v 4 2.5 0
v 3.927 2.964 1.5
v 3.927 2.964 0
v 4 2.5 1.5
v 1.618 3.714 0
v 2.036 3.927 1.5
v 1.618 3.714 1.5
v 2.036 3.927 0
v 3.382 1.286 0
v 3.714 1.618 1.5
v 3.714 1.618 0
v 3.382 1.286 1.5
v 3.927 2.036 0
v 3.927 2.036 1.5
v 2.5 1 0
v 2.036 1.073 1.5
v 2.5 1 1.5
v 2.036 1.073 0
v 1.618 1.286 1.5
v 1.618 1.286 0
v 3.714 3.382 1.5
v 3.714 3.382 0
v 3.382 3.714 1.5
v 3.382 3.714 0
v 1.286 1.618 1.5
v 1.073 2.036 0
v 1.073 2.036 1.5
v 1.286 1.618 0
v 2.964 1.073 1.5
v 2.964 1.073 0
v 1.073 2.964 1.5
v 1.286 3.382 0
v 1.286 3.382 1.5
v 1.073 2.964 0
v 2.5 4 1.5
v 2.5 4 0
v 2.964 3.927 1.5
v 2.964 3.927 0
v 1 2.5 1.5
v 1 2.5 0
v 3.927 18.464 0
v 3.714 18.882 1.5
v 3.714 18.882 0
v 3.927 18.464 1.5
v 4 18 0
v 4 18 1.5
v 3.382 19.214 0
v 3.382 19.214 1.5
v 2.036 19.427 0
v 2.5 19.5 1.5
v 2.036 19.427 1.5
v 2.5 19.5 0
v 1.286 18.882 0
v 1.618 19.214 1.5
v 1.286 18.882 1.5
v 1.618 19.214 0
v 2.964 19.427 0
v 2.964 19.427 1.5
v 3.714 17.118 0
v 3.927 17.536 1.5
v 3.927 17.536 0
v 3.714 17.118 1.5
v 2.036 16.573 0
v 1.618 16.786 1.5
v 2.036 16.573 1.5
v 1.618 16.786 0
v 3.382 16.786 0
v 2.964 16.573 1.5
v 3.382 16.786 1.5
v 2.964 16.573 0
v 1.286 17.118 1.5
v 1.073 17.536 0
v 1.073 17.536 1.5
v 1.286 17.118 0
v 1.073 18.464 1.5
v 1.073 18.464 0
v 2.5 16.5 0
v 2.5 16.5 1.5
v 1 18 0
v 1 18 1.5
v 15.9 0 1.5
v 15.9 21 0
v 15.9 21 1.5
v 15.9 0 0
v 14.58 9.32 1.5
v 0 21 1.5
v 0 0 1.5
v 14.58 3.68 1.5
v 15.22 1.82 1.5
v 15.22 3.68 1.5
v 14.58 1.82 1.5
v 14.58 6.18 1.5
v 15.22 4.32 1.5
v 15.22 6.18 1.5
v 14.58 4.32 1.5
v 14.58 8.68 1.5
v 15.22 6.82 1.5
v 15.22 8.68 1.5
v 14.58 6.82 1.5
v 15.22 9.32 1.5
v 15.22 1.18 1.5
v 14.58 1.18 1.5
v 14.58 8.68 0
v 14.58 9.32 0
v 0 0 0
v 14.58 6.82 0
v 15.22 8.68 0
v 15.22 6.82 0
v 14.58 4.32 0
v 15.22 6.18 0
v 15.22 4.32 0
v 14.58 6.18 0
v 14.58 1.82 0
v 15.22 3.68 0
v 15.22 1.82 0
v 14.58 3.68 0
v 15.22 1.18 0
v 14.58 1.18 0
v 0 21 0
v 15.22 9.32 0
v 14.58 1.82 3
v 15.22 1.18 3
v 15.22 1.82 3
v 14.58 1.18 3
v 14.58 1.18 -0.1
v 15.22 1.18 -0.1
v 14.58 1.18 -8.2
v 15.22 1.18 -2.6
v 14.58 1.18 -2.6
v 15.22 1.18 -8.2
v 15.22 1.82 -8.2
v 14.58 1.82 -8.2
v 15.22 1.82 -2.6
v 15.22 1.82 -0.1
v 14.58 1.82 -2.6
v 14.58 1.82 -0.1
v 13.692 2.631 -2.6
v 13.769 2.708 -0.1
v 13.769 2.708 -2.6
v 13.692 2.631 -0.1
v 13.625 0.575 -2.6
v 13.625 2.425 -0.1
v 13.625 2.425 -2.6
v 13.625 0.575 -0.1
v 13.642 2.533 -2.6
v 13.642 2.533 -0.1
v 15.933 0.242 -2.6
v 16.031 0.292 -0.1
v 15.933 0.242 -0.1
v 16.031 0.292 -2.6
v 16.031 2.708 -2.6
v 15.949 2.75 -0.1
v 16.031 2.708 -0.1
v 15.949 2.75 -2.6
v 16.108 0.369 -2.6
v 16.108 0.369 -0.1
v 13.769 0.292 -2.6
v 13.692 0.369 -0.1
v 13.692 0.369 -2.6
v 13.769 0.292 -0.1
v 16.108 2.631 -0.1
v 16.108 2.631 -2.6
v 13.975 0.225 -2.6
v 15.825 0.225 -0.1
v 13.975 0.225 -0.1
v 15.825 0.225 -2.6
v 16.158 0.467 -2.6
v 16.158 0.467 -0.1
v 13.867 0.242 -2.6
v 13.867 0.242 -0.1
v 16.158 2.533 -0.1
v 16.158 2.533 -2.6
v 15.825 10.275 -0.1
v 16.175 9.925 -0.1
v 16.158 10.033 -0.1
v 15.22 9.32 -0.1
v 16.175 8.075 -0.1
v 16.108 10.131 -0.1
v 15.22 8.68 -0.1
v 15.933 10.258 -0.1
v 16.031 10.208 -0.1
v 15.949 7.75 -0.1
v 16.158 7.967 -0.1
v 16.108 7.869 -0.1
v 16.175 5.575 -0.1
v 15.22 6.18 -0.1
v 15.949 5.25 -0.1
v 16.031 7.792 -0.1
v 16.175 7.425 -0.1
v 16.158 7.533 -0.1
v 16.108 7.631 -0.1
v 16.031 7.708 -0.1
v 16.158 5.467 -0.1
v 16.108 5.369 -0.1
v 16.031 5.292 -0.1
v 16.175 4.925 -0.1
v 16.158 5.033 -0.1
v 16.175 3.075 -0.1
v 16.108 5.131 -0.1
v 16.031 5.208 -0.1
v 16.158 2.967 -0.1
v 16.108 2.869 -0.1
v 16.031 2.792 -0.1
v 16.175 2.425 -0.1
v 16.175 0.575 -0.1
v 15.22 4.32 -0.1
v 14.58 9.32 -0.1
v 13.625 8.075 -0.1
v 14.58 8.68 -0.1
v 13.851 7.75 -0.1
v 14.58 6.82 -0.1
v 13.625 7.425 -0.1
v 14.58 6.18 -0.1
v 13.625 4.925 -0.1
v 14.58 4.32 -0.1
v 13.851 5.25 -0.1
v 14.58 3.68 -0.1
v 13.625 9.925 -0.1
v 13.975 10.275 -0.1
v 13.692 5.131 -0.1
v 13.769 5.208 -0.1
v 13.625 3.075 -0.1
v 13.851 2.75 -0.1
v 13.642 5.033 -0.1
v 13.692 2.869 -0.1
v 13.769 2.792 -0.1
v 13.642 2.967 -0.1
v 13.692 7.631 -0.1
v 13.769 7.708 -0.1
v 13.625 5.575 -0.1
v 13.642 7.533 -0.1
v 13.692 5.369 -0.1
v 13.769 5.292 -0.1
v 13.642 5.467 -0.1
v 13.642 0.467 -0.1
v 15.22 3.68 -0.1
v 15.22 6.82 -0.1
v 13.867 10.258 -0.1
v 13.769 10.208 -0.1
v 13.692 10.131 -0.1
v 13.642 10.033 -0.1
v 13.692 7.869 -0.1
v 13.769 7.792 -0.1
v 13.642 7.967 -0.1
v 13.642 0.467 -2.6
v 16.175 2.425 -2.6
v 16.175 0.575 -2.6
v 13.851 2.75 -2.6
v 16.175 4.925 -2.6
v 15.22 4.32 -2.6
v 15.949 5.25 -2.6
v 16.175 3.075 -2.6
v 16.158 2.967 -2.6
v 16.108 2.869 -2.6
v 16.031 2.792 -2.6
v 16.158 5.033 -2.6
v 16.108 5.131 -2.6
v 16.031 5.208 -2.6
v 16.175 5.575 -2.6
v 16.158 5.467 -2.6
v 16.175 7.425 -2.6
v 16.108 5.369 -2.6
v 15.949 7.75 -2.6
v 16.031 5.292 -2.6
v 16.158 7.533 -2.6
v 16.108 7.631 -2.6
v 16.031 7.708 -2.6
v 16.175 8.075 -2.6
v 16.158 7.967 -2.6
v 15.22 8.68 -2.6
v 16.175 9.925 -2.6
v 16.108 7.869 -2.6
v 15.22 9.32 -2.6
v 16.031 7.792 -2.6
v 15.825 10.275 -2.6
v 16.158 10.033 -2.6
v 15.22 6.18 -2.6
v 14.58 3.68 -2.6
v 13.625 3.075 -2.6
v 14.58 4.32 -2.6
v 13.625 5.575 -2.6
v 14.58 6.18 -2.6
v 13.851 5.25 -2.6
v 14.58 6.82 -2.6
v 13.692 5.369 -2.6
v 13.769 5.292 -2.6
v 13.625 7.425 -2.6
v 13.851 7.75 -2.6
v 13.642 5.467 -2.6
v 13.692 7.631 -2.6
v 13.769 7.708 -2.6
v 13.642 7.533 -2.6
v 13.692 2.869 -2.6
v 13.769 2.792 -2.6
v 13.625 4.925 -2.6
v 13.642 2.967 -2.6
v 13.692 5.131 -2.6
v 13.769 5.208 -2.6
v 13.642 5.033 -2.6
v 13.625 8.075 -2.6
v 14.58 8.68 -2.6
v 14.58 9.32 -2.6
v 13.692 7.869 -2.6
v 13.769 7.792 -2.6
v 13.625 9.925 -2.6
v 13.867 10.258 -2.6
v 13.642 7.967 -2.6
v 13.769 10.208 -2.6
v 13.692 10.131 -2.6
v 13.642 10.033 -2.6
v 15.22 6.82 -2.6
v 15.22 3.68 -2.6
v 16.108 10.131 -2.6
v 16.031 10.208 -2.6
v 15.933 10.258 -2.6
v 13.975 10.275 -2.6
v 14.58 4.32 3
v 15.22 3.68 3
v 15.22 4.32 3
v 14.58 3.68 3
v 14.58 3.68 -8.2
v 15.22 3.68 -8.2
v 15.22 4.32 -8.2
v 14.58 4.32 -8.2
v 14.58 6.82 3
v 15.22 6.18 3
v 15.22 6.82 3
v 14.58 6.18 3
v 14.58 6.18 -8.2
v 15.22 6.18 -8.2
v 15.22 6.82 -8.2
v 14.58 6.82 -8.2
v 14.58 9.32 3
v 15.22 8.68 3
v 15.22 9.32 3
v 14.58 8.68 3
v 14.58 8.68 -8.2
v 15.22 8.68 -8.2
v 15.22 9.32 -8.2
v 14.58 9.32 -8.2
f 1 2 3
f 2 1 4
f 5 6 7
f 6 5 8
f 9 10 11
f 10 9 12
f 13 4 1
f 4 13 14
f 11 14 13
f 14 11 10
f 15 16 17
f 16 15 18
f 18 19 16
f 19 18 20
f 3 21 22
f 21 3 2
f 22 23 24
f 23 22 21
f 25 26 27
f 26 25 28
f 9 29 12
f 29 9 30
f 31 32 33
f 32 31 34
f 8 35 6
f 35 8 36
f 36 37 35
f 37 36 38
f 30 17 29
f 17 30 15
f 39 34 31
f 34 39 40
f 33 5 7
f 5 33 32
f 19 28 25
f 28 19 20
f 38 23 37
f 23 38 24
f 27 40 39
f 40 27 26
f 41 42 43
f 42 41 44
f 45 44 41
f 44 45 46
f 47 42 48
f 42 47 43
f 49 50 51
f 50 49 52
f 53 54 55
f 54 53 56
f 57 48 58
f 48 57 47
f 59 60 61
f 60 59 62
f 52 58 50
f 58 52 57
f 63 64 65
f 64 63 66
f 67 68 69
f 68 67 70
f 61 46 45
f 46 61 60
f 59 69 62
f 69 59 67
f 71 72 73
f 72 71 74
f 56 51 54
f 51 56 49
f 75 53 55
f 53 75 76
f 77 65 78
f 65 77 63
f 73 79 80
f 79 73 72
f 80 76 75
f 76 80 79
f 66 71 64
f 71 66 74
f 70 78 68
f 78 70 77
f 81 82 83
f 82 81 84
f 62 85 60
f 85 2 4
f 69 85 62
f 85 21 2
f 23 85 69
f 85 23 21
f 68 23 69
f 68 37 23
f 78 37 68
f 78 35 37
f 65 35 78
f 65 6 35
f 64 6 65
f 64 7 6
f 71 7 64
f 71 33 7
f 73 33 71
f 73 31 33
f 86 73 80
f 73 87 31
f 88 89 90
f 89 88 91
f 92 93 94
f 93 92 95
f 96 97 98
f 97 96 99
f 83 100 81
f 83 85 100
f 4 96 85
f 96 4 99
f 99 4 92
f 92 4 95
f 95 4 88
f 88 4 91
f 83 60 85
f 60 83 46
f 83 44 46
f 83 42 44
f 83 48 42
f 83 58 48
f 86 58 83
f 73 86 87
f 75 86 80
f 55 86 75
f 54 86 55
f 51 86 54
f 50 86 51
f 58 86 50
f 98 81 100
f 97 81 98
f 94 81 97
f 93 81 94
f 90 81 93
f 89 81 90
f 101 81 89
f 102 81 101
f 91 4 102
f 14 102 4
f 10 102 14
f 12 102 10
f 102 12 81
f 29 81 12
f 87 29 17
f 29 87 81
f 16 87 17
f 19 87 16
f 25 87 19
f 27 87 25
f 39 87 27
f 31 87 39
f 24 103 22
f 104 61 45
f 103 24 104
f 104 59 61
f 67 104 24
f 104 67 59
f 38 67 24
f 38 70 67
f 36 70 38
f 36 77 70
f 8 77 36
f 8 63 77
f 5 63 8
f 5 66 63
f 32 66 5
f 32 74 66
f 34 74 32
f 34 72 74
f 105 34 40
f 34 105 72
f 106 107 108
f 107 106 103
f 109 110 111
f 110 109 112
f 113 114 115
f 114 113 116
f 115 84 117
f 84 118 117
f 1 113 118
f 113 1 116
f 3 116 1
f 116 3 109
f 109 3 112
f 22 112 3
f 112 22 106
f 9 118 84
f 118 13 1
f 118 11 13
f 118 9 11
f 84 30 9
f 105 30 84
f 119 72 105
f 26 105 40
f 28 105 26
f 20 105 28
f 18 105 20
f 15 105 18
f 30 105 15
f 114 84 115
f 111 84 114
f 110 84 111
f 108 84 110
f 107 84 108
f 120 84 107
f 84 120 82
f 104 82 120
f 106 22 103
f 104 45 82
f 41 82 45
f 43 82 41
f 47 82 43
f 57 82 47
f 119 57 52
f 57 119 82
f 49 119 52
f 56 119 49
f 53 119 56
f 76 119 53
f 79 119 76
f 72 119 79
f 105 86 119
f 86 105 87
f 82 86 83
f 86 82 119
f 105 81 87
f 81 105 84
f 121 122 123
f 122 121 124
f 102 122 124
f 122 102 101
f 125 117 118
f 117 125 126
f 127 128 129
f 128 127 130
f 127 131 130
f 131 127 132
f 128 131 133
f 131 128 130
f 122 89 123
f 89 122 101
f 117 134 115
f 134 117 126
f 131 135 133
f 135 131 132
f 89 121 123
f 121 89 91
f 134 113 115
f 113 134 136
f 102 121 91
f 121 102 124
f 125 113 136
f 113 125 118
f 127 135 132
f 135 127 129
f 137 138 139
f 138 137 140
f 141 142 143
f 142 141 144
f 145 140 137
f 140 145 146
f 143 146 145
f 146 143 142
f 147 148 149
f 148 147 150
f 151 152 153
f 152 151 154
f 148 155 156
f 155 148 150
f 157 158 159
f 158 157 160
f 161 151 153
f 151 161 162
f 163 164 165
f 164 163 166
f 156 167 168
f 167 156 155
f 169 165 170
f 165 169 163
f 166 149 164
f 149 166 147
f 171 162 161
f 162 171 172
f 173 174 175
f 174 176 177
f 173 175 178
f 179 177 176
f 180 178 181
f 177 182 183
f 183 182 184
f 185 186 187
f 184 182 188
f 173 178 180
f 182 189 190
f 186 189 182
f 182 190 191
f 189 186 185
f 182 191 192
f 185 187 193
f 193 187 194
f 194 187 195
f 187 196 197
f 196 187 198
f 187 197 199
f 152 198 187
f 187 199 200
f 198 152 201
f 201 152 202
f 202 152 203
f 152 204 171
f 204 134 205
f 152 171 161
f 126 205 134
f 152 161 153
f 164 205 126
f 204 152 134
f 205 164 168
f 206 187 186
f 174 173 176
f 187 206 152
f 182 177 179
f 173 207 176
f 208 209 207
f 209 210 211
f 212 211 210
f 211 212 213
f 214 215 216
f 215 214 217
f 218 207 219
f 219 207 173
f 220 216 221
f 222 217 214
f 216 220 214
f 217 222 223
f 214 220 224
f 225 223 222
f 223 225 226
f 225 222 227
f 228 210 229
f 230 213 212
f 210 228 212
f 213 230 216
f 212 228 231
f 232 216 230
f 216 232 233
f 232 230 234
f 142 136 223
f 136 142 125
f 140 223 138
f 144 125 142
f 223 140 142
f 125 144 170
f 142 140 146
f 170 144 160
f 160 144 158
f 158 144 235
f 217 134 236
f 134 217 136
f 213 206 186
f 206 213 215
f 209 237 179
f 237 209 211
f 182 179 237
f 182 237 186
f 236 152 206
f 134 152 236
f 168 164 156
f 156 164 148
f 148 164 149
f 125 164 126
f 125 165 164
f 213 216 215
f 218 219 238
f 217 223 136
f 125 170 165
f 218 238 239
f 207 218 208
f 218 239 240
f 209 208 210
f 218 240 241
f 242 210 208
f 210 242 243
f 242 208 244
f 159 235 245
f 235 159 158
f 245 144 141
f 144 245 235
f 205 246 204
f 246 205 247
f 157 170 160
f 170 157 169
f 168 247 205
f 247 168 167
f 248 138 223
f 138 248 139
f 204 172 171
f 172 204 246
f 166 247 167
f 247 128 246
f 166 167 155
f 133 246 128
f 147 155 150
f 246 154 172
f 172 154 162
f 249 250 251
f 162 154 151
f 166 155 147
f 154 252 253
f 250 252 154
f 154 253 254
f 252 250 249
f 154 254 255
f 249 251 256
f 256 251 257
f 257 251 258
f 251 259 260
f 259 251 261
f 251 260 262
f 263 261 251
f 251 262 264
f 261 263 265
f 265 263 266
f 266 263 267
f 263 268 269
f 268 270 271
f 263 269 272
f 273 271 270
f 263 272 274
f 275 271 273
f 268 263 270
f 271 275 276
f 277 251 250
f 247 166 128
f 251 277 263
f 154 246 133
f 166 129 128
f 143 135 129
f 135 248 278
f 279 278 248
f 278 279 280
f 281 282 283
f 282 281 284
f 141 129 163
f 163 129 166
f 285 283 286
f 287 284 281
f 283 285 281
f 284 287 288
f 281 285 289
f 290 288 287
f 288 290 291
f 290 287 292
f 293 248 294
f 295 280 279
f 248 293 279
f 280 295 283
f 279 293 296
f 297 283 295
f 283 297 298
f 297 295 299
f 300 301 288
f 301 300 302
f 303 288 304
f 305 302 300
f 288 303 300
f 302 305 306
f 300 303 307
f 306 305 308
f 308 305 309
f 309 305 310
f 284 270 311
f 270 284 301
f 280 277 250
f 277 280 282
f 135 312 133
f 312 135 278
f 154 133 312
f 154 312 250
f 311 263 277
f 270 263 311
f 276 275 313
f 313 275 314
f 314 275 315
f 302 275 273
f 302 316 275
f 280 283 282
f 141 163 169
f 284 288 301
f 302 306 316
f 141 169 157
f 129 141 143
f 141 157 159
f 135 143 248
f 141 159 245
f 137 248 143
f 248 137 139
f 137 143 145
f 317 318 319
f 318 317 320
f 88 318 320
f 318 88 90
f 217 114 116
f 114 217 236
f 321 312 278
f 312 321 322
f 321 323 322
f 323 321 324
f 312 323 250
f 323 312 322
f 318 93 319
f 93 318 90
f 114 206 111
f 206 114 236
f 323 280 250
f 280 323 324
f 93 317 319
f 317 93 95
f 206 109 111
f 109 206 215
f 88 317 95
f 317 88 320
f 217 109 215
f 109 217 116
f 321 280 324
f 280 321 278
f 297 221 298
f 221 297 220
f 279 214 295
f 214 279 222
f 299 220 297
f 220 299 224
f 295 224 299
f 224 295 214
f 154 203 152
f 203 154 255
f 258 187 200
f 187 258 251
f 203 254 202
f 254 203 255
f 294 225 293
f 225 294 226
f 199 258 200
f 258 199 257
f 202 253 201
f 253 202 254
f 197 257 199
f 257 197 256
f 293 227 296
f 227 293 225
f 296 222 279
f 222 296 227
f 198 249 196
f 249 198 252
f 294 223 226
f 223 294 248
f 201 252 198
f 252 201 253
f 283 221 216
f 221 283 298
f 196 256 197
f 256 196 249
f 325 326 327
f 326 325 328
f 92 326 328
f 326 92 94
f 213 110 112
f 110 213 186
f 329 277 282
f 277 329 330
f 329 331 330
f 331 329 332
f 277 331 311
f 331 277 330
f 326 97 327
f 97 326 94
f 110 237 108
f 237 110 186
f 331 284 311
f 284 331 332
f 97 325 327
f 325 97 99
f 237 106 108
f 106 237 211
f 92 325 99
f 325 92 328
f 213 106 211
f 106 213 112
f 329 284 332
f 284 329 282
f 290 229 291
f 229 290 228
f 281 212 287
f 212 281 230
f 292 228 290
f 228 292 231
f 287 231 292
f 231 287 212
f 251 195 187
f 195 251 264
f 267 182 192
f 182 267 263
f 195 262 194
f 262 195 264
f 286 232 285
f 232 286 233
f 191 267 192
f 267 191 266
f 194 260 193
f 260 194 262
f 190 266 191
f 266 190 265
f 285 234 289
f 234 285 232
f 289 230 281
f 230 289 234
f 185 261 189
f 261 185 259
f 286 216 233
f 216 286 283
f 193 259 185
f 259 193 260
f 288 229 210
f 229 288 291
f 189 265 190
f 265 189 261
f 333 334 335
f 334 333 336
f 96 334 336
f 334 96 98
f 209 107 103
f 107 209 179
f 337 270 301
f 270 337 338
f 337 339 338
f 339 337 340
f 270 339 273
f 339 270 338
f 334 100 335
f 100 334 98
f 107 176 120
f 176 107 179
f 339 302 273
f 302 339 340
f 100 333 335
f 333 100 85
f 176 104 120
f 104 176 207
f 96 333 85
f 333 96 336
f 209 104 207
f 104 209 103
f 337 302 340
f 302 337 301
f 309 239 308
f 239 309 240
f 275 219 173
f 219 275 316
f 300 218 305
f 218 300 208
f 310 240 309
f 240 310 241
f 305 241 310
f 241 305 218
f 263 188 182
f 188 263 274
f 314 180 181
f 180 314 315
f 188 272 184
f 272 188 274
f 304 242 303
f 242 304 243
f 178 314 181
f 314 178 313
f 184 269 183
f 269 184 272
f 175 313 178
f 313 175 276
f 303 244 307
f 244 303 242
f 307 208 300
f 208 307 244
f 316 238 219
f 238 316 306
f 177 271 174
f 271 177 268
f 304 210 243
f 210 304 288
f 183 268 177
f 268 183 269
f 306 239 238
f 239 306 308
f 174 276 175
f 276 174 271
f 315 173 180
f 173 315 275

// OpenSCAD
// file: screw_connector.scad
BOX_WD = 7.7;
BOX_HT =10;
THICKNESS = 4.7;
size_mod = 0.05; // ensure overlap
SHD_HT = 4;
SCREWHOLE_RAD = 3.6/2;

module single(){
    box_points=[
        [-(BOX_WD/2),0],
        [-(BOX_WD/2),BOX_HT-SHD_HT],
        [-(BOX_WD/2)+2.0,BOX_HT],
        [(BOX_WD/2)-1.5,BOX_HT],
        [(BOX_WD/2),BOX_HT-SHD_HT],
        [(BOX_WD/2),0],
    ];
    difference(){
        rotate(90,[0,0,1]){
            rotate(90,[1,0,0]){
                linear_extrude(height=THICKNESS + size_mod){
                    polygon(box_points);
                }
            }
        }
        // screw hole
        translate([THICKNESS/2,0.3,BOX_HT/2]){
            cylinder(r=SCREWHOLE_RAD,h=6,$fn=20);
        }

        // WIRE_ HOLES
        translate([0.25,0,0.3]){
            cube([4.2,4,5.2]);
        }
    }

    // wires
    translate([(THICKNESS/2)-.4,-0.4,-3.5]){
        cube([0.8,0.8,4]);
    }

    //contact stuff in holes... where the wires go
    translate([0.35,0,0.5]){
        difference(){
            cube([4.0,3.8,5.0]);
            translate([0.2,0.1,0.2]){
                cube([3.6,4.0,4.6]);
            }

        }
    }
    translate([0.7, 1.6, 3.2]){
        cube([3.2,2,3.2]);
    }

}

module dual_screw_connector(){
    single();
    translate([THICKNESS,0,0]){
        single();
    }
}


//dual_screw_connector();
// file: strip_connector_male.scad
include <Round-Anything/polyround.scad>

$fn=20;
shldr_cube = 2.5;
spike_ht = 11.2;
bot_2_cube_top = 5.6;

size_mod = 0.05; // to ensure the shapes actually overlap not 
                // exactly touch
// create one spike of the connector
module conn_spike(){
    
    linear_extrude(height=spike_ht){
        square([0.64,0.64],center=true);
    }

    
    cbhf = (shldr_cube + size_mod)/2;
    cb_rad = 0.35;
    cbxy = [
        [cbhf,cbhf,cb_rad],
        [cbhf,-cbhf,cb_rad],
        [-cbhf,-cbhf,cb_rad],
        [-cbhf,cbhf,cb_rad],
    ];
    
    translate([0,0,bot_2_cube_top-(shldr_cube)]){
        linear_extrude(height=shldr_cube){
            polygon(polyRound(cbxy,$fn=20));
        }
    }

    // cube(shldr_cube,center=true);
}

arm_ht = 7.5;
spike_wd = 0.64;
bend_rad = 1.2;

spike_points = [
    [-(spike_wd/2),0,0],
    [-(spike_wd/2),arm_ht,bend_rad],
    [arm_ht-(spike_wd/2),arm_ht+(spike_wd/2),0],
    [arm_ht-(spike_wd/2),arm_ht-(spike_wd/2),0],
    [(spike_wd/2),arm_ht-spike_wd,bend_rad-spike_wd],
    [(spike_wd/2),0,0],
];



// create one spike of the connector
module bent_conn_spike(){
    
    translate([-spike_wd/2,0,0]){
        rotate(90,[0,0,1]){
            rotate(90,[1,0,0]){
                linear_extrude(height=spike_wd){
                    polygon(polyRound(spike_points));
                }
            }
        }
    }
    
    cbhf = (shldr_cube + size_mod)/2;
    cb_rad = 0.35;
    cbxy = [
        [cbhf,cbhf,cb_rad],
        [cbhf,-cbhf,cb_rad],
        [-cbhf,-cbhf,cb_rad],
        [-cbhf,cbhf,cb_rad],
    ];
    
    translate([0,0,bot_2_cube_top-(shldr_cube)]){
        linear_extrude(height=shldr_cube){
            polygon(polyRound(cbxy,$fn=20));
        }
    }

    // cube(shldr_cube,center=true);
}



// create an arbitrarily long line of them
// along the x-axis
module bent_multi_male_connector(conn_count){
    for (cc=[0 : conn_count-1] ){
        //translate([((cc*shldr_cube))-(shldr_cube/2),0,0]){
        translate([((cc*shldr_cube)),0,0]){
            bent_conn_spike();
        }
    }

}

//bent_multi_male_connector(14);

// create an arbitrarily long line of them
// along the x-axis
module multi_male_connector(conn_count){
    for (cc=[0 : conn_count-1] ){
        //translate([((cc*shldr_cube))-(shldr_cube/2),0,0]){
        translate([((cc*shldr_cube)),0,0]){
            conn_spike();
        }
    }

}

module matrix_male_connector(xlen,ylen){
    translate([0,0,-(bot_2_cube_top-shldr_cube)]){
        for(cc=[0 : ylen-1] ){
            translate([0,cc*shldr_cube,0]){
                multi_male_connector(xlen);
            }
        }
    }

}

//multi_male_connector(20);
//matrix_male_connector(6,5);
// main file
include <strip_connector_male.scad>
include <screw_connector.scad>

$fn=20;
WIDTH = 15.9;
LENGTH = 21.0;
DEPTH = 1.5;

PCB_MNT_HOLE_RAD = 3/2;

// [1.4+PCB_MNT_HOLE_RAD,4.4+PCB_MNT_HOLE_RAD],
// [19.3 + PCB_MNT_HOLE_RAD,4.4+PCB_MNT_HOLE_RAD],

hole_pts = [
    [PCB_MNT_HOLE_RAD+1,PCB_MNT_HOLE_RAD+1],
    [PCB_MNT_HOLE_RAD+1,PCB_MNT_HOLE_RAD+16.5],
];

difference(){
    // THE ACTUAL PCB
    cube([WIDTH,LENGTH,DEPTH]);

    for(pt = hole_pts){
        translate([pt[0],pt[1],0]){
            cylinder(r=PCB_MNT_HOLE_RAD,h=5,center=true);
        }
    }
}


translate([WIDTH-1,1.5,3.0]){
    rotate(180,[0,1,0]){
        rotate(90,[0,0,1]){
            multi_male_connector(4);
        }
    }
}
